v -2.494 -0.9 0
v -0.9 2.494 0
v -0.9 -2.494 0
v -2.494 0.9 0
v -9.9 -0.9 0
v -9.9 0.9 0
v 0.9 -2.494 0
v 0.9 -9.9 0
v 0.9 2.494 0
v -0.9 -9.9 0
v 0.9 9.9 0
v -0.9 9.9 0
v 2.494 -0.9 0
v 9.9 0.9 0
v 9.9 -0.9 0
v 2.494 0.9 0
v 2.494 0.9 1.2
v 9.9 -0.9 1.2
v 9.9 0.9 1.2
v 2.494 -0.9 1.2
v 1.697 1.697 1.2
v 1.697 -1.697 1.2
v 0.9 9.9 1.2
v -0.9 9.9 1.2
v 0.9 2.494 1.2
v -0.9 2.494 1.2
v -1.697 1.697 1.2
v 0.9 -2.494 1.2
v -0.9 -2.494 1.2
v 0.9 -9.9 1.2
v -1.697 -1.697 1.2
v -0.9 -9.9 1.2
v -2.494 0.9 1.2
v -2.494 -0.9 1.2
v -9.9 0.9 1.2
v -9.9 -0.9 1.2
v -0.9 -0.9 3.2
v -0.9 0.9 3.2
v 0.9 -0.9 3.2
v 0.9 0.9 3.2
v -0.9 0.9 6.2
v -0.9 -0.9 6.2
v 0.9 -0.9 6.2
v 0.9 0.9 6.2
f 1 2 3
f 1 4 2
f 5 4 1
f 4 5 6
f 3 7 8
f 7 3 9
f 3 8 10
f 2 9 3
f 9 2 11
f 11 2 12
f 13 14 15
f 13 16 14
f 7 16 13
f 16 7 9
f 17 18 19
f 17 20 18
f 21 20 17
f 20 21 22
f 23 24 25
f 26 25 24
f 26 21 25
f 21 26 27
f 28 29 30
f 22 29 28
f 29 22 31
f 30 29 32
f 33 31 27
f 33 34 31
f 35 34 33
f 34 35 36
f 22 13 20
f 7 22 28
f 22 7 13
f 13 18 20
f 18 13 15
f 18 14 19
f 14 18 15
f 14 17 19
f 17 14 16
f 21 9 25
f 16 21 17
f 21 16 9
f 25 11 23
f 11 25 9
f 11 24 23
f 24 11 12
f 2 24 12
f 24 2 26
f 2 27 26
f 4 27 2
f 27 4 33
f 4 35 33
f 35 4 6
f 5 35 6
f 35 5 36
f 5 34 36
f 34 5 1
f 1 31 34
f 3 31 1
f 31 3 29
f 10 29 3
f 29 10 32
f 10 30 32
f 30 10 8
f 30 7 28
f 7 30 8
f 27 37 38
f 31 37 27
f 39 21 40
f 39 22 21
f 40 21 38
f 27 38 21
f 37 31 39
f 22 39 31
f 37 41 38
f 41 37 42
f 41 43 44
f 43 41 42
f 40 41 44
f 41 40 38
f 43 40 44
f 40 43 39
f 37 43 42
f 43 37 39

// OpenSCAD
// file: constants.scad
// When parts need to fit together, they'll be given this much distance between
// them.
TOLERANCE = 0.4;

// Length of a "stone" end-to-end.
STONE_LENGTH = 20;

// Width of the arms of a stone.
STONE_WIDTH = 2;

// Width of the base in the center of a stone.
STONE_BASE_WIDTH = 5;

// Height of the arms of a stone.
STONE_ARM_HEIGHT = 1.2;

// Height of the nub that helps to pick up a stone.
STONE_NUB_HEIGHT = 5;

// Height of the nub that helps to pick up a stone.
STONE_NUB_SHEATH_HEIGHT = 2;

// Depth of the grooves in the board, that the stone fits in.
BOARD_GROOVE_DEPTH = 0.8;

// Number of stones along the side of the board.
BOARD_SIZE = 3;

// Height of the board, up to the bottom of the grooves.
BOARD_HEIGHT = 1.6;
// main file
include <constants.scad>

linear_extrude(STONE_ARM_HEIGHT) {
  square([STONE_LENGTH - TOLERANCE/2, STONE_WIDTH - TOLERANCE/2], center=true);
  square([STONE_WIDTH - TOLERANCE/2, STONE_LENGTH - TOLERANCE/2], center=true);
  rotate([0, 0, 45])
    square(STONE_BASE_WIDTH - TOLERANCE/2, center=true);
}

SHEATH_BASE = (STONE_BASE_WIDTH - TOLERANCE/2)/sqrt(2);

translate([0, 0, STONE_ARM_HEIGHT])
  linear_extrude(STONE_NUB_SHEATH_HEIGHT,
                 scale=(STONE_WIDTH - TOLERANCE/2)/SHEATH_BASE)
  square(SHEATH_BASE, center=true);
  
linear_extrude(STONE_ARM_HEIGHT + STONE_NUB_HEIGHT)
  square(STONE_WIDTH - TOLERANCE/2, center=true);
